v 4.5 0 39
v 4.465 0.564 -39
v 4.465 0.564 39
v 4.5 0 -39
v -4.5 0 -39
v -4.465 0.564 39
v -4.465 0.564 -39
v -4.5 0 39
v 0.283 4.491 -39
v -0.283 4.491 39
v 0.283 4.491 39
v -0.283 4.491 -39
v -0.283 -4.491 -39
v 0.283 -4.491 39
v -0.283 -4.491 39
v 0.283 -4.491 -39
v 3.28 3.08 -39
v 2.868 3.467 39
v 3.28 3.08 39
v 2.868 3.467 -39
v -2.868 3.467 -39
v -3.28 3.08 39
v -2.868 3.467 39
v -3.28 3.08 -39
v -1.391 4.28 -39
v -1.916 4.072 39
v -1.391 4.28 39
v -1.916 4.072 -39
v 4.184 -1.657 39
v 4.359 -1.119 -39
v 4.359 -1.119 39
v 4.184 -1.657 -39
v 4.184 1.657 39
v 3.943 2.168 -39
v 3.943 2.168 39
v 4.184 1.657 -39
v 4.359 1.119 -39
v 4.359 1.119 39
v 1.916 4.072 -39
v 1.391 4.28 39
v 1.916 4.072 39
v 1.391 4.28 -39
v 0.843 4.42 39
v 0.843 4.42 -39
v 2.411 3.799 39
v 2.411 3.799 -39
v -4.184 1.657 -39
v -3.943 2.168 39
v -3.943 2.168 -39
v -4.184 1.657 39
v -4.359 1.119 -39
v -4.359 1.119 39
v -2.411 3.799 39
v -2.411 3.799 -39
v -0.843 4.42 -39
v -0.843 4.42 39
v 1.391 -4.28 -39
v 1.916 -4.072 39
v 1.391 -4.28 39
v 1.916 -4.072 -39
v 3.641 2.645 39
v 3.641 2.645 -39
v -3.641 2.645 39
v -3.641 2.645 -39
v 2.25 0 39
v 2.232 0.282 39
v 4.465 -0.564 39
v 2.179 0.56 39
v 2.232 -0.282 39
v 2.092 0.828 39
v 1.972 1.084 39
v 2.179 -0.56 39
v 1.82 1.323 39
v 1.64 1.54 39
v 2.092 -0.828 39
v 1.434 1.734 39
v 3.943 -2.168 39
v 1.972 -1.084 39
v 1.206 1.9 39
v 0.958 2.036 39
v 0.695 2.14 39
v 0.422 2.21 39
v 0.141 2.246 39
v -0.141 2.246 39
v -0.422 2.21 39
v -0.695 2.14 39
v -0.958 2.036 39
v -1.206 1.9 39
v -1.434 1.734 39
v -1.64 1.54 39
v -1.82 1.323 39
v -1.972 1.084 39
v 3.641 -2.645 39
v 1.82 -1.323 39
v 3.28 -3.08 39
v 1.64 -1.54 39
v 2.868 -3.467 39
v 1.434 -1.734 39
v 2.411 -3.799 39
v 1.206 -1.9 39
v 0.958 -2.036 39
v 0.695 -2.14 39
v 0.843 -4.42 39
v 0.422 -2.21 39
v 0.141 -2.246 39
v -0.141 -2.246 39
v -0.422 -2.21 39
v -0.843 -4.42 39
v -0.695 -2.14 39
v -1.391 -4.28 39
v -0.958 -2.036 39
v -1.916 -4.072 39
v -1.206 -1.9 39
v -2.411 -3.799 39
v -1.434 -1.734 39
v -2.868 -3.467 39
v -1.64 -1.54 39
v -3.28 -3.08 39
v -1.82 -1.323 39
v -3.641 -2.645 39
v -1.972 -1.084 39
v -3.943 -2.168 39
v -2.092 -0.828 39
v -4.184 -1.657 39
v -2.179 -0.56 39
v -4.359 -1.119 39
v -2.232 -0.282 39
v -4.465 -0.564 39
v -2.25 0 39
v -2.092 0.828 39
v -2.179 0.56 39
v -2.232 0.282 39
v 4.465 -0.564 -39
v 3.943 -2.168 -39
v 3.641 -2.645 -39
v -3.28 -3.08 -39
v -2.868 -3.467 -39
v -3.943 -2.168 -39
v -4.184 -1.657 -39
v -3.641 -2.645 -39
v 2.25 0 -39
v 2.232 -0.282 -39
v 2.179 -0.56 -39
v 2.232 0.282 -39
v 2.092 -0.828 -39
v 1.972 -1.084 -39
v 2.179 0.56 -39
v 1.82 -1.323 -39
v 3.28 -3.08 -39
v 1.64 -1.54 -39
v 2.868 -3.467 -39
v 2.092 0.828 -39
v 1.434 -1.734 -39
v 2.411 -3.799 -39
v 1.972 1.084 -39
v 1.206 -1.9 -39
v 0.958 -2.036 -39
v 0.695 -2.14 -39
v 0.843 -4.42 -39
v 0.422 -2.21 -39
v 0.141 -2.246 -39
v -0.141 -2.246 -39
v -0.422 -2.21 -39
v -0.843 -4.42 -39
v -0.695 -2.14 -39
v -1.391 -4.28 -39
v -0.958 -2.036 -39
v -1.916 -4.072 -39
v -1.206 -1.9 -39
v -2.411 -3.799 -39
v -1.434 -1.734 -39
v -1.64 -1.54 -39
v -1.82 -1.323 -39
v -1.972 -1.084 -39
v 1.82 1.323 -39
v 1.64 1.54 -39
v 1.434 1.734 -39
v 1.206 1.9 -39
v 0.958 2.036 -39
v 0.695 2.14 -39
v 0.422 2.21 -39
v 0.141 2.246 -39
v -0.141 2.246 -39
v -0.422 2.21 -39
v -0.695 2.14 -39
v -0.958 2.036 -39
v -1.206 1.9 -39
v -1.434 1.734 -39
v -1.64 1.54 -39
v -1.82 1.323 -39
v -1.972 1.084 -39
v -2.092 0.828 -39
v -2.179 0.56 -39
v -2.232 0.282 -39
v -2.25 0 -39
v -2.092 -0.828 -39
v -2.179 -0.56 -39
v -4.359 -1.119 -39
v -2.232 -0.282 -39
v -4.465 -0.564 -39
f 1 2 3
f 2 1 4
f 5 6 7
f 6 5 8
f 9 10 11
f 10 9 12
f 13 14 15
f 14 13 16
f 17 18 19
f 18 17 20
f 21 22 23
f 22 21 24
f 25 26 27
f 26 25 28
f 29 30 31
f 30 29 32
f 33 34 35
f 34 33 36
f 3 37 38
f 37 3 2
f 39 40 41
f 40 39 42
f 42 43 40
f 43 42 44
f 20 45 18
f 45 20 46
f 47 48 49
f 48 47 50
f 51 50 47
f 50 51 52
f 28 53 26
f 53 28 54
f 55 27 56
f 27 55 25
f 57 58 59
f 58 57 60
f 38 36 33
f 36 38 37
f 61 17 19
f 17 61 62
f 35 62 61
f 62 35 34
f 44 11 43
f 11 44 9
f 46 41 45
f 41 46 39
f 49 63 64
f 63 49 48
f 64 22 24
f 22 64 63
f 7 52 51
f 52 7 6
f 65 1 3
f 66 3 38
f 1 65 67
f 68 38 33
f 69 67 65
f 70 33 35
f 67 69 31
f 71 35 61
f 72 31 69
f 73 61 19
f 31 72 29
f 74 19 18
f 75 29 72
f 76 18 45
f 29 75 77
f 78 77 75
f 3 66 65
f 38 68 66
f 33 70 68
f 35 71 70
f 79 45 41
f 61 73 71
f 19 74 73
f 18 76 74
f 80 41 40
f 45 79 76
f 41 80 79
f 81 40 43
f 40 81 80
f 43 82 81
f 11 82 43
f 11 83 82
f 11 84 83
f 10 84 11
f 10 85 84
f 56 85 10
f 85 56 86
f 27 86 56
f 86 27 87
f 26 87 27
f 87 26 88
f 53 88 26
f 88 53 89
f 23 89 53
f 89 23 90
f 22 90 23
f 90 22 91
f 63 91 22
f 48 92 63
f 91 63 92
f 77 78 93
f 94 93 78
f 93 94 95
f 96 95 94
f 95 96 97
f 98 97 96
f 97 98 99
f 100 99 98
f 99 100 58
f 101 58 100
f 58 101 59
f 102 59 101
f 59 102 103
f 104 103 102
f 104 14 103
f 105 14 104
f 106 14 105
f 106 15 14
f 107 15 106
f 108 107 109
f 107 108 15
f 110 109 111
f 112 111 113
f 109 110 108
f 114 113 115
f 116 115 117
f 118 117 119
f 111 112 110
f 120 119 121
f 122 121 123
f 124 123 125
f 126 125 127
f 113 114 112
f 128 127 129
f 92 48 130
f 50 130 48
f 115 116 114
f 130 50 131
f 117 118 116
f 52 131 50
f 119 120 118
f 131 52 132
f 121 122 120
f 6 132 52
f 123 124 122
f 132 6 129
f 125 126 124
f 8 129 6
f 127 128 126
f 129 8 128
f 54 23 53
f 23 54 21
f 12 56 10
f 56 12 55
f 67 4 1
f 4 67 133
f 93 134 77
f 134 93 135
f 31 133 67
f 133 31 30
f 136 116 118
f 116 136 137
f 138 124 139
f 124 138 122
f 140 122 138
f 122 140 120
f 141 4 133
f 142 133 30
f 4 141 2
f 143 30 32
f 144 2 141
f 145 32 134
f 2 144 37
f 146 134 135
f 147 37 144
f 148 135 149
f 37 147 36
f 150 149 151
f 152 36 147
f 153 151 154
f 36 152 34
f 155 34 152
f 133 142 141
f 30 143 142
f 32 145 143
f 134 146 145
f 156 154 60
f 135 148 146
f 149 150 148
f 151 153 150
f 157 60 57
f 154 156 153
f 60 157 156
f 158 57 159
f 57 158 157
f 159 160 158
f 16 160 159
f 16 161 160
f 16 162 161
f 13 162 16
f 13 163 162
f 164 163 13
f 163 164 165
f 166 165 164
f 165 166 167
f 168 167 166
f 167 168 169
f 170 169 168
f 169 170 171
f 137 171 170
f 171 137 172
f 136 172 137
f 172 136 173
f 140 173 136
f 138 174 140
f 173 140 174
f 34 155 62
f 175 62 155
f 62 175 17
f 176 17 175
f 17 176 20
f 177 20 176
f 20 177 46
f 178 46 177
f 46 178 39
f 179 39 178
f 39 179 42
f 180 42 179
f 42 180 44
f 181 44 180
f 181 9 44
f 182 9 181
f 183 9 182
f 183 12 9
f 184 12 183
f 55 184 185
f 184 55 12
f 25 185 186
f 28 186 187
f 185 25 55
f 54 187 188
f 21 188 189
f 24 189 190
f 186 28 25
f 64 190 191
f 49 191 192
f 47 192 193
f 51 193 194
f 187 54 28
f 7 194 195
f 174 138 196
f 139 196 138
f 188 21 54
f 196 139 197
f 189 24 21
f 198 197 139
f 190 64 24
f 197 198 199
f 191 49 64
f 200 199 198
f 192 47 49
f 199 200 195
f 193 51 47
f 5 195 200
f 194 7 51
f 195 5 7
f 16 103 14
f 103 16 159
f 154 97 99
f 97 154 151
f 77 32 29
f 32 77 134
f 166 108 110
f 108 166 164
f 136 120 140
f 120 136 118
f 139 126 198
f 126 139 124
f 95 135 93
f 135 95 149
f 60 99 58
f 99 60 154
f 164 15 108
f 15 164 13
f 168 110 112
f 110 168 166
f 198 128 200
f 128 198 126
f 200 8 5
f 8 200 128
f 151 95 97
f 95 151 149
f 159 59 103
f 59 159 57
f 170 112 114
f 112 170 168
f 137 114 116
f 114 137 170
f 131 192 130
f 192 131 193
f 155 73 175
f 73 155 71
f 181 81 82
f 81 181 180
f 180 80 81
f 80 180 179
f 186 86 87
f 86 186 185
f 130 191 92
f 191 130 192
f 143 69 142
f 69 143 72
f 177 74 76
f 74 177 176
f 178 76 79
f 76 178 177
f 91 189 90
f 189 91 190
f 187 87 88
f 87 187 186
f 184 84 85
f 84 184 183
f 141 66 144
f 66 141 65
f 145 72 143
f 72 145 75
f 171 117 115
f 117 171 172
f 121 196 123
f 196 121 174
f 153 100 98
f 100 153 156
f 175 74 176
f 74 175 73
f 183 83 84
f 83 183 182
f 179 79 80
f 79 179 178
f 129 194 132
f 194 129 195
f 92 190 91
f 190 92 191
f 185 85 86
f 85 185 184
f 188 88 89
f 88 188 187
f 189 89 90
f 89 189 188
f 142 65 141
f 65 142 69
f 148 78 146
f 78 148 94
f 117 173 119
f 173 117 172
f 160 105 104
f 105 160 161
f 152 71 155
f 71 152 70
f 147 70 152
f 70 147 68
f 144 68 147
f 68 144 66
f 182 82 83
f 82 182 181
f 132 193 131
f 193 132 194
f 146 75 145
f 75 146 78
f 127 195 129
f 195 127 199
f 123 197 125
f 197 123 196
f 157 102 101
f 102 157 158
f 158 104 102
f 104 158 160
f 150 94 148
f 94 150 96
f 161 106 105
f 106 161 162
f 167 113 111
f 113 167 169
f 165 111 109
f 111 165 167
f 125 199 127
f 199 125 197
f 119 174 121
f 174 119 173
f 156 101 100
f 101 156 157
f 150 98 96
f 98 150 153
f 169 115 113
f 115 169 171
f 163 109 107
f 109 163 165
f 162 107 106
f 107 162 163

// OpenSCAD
$fn = 50;


difference() {
	union() {
		translate(v = [0, 0, -39.0000000000]) {
			cylinder(h = 78, r = 4.5000000000);
		}
	}
	union() {
		translate(v = [0, 0, -100.0000000000]) {
			cylinder(h = 200, r = 2.2500000000);
		}
	}
}
